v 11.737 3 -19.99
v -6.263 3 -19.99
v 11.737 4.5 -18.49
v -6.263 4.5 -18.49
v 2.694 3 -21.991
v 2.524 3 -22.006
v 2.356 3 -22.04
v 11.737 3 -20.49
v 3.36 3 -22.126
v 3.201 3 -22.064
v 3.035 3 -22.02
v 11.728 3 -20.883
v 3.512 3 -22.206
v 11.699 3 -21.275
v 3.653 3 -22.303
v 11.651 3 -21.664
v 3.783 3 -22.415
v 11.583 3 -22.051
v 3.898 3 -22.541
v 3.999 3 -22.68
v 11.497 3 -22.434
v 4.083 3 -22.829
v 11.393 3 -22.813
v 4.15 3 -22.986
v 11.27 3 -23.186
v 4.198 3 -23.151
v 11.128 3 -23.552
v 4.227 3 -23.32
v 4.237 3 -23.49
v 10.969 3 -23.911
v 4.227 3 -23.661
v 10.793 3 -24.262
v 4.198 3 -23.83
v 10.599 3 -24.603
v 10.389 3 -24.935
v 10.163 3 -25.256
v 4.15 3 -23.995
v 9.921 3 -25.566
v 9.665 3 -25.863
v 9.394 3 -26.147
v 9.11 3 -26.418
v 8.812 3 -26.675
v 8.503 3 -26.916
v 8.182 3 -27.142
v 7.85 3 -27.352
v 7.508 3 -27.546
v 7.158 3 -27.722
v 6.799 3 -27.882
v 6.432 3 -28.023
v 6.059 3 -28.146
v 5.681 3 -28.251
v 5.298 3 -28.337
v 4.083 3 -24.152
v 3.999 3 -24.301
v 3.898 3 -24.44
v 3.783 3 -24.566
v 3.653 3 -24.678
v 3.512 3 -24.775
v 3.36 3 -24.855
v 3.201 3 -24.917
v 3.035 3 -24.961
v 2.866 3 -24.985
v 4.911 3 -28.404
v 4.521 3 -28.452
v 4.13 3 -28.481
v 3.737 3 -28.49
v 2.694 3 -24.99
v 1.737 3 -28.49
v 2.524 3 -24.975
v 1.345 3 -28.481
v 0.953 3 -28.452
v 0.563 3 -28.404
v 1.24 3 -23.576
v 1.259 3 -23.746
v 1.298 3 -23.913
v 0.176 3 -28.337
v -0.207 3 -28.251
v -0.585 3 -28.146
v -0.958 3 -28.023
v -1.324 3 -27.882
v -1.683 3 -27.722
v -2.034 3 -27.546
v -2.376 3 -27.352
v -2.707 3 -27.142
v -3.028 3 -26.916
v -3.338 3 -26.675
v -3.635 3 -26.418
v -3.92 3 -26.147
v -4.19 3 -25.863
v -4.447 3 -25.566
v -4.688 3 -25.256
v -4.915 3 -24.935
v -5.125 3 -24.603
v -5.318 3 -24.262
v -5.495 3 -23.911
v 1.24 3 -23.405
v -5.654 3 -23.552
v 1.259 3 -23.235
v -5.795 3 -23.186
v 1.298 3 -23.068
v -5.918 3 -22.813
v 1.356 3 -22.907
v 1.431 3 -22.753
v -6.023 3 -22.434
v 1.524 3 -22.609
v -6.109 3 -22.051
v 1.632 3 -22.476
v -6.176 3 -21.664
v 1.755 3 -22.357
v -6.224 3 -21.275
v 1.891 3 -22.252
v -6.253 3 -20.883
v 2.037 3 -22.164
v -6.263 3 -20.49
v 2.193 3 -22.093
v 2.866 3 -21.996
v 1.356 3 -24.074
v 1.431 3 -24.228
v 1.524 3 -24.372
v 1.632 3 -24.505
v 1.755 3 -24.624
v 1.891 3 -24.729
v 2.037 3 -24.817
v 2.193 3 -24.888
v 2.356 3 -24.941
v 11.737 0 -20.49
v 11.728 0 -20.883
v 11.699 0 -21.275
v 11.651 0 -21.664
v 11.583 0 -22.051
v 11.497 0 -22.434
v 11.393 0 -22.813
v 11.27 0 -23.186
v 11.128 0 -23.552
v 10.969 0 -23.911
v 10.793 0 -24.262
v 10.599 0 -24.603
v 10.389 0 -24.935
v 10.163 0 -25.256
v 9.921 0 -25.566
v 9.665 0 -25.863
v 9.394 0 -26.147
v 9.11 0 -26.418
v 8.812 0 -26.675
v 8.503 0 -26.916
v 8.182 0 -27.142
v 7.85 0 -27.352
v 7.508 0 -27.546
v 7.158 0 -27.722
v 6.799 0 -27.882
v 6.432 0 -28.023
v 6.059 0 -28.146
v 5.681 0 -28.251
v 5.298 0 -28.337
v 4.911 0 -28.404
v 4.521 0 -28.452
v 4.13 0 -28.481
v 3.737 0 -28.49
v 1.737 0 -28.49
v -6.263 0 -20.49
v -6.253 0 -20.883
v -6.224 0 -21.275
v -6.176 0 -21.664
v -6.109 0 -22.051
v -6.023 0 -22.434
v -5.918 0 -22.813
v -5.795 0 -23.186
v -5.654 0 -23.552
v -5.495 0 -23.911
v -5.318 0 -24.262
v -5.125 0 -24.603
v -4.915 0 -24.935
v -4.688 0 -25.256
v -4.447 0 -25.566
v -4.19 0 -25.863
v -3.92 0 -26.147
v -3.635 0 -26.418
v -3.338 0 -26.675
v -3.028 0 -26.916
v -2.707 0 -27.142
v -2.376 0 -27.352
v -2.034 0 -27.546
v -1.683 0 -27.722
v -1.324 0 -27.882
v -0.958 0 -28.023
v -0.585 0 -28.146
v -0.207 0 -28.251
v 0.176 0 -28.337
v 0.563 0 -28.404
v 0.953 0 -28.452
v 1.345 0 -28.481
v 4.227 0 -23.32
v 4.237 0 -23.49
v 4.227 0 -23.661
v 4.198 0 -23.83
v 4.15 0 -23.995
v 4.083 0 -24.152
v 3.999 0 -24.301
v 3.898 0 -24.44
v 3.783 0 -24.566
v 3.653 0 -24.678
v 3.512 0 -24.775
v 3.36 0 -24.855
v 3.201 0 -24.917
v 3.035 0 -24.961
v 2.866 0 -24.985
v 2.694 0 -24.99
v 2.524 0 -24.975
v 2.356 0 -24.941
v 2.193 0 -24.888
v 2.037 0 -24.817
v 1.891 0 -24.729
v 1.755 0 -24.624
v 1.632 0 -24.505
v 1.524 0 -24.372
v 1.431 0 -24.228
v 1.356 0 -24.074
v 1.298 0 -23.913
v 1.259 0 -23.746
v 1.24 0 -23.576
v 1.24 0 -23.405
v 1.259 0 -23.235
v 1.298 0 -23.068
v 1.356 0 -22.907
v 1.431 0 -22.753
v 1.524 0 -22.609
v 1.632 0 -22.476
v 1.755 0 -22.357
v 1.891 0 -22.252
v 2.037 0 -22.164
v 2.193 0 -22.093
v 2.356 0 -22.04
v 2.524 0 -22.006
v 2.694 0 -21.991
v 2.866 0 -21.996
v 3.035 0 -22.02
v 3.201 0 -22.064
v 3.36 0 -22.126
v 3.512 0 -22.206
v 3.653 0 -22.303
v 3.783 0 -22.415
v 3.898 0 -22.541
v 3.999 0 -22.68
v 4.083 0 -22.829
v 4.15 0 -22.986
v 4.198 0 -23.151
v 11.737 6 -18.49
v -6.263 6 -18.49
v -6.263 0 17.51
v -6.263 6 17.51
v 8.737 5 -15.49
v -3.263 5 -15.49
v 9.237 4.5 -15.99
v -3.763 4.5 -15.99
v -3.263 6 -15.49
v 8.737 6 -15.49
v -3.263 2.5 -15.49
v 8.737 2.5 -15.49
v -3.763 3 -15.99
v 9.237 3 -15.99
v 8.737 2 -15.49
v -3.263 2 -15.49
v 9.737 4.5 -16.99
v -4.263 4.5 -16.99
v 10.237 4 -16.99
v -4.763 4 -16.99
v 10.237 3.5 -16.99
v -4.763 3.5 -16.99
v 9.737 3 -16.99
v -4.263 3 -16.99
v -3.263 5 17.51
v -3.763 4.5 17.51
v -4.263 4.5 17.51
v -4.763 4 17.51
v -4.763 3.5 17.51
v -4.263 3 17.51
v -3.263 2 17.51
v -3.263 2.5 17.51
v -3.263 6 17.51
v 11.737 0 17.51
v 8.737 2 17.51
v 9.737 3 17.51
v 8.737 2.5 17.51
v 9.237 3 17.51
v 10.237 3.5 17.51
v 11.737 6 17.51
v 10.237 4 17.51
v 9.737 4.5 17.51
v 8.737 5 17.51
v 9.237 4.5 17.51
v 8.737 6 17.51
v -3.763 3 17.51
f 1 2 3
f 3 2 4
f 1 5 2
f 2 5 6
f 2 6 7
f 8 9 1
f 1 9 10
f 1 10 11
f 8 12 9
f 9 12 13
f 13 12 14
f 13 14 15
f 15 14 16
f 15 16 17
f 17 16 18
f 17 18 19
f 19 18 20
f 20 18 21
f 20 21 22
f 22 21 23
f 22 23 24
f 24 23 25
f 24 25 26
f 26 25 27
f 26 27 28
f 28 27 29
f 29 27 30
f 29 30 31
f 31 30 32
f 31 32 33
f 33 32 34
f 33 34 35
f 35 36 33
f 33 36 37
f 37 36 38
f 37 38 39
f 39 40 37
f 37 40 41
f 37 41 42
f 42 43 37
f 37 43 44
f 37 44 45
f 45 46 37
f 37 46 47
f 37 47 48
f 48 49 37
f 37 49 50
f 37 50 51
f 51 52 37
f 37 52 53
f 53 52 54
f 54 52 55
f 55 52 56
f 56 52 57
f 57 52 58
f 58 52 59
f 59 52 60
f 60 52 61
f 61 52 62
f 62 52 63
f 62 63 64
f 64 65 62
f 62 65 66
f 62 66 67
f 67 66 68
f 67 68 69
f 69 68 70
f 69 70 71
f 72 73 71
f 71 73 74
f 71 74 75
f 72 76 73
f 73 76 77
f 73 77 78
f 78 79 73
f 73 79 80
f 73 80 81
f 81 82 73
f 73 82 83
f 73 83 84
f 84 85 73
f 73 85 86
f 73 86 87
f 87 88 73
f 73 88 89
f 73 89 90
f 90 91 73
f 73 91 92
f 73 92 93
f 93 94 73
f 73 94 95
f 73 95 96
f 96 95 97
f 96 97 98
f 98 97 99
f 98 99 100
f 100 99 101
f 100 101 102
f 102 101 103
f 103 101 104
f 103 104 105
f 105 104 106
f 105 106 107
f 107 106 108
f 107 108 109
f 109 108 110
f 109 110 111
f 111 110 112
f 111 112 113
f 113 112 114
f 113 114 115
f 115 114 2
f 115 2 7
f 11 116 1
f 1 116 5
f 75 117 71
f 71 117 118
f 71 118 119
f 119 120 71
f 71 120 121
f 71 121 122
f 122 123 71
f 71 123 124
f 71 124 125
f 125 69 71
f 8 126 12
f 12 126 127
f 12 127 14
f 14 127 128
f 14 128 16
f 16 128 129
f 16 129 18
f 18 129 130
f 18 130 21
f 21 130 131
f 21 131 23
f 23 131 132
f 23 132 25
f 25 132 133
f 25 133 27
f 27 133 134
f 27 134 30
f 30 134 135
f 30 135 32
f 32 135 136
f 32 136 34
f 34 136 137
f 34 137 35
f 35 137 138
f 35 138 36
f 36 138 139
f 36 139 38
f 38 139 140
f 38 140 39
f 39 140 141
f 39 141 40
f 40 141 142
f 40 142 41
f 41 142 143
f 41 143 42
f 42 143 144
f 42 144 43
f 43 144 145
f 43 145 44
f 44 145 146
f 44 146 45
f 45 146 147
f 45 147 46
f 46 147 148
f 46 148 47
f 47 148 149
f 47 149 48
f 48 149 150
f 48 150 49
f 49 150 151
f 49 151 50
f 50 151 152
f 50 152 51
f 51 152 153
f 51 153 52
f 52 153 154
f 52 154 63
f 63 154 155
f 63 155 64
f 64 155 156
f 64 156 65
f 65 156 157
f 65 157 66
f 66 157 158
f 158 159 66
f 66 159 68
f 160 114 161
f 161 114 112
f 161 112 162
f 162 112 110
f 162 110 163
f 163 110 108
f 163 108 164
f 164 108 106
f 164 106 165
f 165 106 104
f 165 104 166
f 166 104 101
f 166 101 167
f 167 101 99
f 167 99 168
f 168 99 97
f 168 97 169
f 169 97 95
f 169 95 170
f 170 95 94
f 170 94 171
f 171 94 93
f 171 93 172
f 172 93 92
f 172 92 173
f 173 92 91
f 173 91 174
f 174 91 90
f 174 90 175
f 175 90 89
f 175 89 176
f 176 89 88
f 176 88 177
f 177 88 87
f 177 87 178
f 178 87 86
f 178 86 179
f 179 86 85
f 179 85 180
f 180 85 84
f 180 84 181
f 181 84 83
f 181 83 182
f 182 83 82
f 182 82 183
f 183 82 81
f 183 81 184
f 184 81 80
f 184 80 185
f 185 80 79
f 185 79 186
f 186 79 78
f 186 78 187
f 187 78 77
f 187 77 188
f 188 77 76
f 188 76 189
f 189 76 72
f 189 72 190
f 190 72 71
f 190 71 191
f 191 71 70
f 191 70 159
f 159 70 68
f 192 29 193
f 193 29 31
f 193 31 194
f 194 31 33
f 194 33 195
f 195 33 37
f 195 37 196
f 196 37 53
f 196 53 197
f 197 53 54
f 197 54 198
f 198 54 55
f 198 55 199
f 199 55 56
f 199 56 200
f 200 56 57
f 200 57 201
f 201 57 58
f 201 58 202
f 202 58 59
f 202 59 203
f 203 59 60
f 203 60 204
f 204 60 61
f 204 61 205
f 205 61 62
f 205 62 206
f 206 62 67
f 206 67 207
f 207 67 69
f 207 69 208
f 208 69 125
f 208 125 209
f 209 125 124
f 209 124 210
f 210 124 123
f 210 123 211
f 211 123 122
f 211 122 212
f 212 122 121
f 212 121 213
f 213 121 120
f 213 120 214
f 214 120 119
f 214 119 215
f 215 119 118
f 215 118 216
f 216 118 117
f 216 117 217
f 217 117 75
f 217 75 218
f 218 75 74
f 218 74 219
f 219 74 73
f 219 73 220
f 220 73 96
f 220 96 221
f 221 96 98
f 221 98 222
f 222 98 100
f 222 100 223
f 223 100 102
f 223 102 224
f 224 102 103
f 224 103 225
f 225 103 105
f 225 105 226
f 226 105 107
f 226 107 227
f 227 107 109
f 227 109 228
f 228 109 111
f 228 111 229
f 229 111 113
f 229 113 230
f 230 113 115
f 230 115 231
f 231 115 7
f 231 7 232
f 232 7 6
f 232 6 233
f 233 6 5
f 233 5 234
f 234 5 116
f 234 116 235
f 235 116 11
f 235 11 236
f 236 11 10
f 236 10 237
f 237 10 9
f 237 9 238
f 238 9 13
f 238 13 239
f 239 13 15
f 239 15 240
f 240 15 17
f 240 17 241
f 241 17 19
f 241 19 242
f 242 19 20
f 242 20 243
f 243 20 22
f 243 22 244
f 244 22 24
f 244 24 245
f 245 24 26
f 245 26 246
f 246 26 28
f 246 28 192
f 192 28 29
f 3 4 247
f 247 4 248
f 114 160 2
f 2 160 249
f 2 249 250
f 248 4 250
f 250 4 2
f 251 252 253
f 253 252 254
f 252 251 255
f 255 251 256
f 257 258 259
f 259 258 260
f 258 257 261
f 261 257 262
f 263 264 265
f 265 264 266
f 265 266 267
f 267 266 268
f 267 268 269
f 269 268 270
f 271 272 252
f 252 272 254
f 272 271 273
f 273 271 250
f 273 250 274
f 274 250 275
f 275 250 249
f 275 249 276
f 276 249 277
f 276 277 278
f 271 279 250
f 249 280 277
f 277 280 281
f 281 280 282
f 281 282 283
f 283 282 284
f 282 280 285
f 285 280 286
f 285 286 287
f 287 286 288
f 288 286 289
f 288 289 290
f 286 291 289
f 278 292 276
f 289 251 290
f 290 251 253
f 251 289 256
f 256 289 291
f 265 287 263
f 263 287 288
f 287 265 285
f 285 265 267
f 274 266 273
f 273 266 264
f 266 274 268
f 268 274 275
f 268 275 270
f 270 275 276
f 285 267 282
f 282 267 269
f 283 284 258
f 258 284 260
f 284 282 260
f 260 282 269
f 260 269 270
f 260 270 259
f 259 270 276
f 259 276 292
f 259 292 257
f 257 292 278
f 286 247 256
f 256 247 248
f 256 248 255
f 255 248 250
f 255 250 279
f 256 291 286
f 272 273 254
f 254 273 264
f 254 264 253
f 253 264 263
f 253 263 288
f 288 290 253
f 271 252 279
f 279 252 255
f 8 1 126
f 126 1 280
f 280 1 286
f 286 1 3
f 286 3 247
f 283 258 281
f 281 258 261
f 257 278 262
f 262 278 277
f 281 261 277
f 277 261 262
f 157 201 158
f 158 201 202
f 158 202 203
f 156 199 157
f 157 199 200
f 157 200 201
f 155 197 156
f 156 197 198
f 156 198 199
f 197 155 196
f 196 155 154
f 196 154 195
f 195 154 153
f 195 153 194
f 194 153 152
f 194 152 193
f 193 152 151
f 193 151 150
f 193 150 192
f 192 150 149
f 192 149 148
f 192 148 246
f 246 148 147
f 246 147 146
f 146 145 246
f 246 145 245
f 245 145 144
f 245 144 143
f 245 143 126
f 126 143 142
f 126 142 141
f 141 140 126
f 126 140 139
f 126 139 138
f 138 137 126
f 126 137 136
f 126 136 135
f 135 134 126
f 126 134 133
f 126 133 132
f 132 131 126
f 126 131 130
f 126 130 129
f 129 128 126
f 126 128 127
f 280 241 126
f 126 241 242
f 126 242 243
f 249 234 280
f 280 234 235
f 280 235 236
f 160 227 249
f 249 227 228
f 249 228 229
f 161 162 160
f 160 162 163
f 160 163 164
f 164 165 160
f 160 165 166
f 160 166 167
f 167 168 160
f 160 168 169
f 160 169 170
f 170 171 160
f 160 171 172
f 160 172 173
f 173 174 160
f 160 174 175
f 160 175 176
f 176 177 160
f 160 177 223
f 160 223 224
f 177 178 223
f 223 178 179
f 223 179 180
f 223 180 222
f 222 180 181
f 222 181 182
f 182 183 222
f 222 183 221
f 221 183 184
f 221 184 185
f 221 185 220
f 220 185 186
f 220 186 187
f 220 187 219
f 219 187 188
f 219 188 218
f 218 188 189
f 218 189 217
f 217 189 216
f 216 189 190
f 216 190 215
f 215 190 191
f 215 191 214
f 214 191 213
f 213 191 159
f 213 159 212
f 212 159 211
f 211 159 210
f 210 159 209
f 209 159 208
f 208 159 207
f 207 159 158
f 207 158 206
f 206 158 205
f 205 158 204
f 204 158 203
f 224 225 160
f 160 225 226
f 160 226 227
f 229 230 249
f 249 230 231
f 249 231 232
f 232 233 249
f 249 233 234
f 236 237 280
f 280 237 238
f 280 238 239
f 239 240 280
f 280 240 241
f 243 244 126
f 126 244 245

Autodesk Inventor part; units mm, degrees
ref_plane "YZ Plane" through (0, 0, 0) normal (1, 0, 0) x (0, 1, 0)
ref_plane "XZ Plane" through (0, 0, 0) normal (0, 1, 0) x (-1, 0, 0)
ref_plane "XY Plane" through (0, 0, 0) normal (0, 0, 1) x (1, 0, 0)
sketch "Sketch1" plane through (0, 0, 0) normal (0, 1, 0) x (-1, 0, 0)
  line L0 (4.2628, 17.0095) -> (-9.7372, 17.0095)
  line L1 (-9.7372, 17.0095) -> (-9.7372, -14.9905)
  line L2 (-9.7372, -14.9905) -> (4.2628, -14.9905)
  line L3 (4.2628, -14.9905) -> (4.2628, 17.0095)
  line L4 (4.7628, 17.5095) -> (-10.2372, 17.5095)
  line L5 (-10.2372, 17.5095) -> (-10.2372, -15.4905)
  line L6 (-10.2372, -15.4905) -> (4.7628, -15.4905)
  line L7 (4.7628, -15.4905) -> (4.7628, 17.5095)
  point P0 (0, 0)
  dimension "d0" = 14
  dimension "d1" = 32
  dimension "d2" = 0.5
extrude "Extrusion1" add sketch "Sketch1" along normal blind 2 contours L3 L2 L1 L0 | L7 L6 L5 L4
sketch "Sketch2" plane through (0, 2, 0) normal (0, 1, 0) x (1, 0, 0)
  line L0 (-4.7628, 15.4905) -> (-4.7628, -17.5095) projected
  line L1 (10.2372, -17.5095) -> (10.2372, 15.4905) projected
  line L2 (-3.2628, 15.4905) -> (-3.2628, -17.5095)
  line L3 (8.7372, -17.5095) -> (8.7372, 15.4905)
  line L4 (-3.2628, -17.5095) -> (-6.2628, -17.5095)
  line L5 (-6.2628, -17.5095) -> (-6.2628, 15.4905)
  line L6 (-6.2628, 15.4905) -> (-3.2628, 15.4905)
  line L7 (-3.2628, 15.4905) -> (-3.2628, -17.5095)
  line L8 (8.7372, -17.5095) -> (11.7372, -17.5095)
  line L9 (11.7372, -17.5095) -> (11.7372, 15.4905)
  line L10 (11.7372, 15.4905) -> (8.7372, 15.4905)
  line L11 (8.7372, 15.4905) -> (8.7372, -17.5095)
  point P0 (0, 0)
  dimension "d5" = 1.5
  dimension "d6" = 1.5
  dimension "d7" = 3
  dimension "d8" = 3
extrude "Extrusion2" add sketch "Sketch2" along normal blind 1
sketch "Sketch3" plane through (0, 3, 0) normal (0, 1, 0) x (1, 0, 0)
  line L0 (-6.2628, 15.4905) -> (-6.2628, -17.5095) projected
  line L1 (11.7372, -17.5095) -> (11.7372, 15.4905) projected
  line L2 (-6.2628, -17.5095) -> (-4.7628, -17.5095) projected
  line L3 (-3.2628, 15.4905) -> (-6.2628, 15.4905) projected
  line L4 (-6.2628, -17.5095) -> (-4.7628, -17.5095)
  line L5 (-4.7628, -17.5095) -> (-4.7628, 15.4905)
  line L6 (-4.7628, 15.4905) -> (-6.2628, 15.4905)
  line L7 (-6.2628, 15.4905) -> (-6.2628, -17.5095)
  line L8 (10.2372, -17.5095) -> (10.2372, 15.4905) projected
  line L9 (11.7372, -17.5095) -> (10.2372, -17.5095)
  line L10 (10.2372, -17.5095) -> (10.2372, 15.4905)
  line L11 (10.2372, 15.4905) -> (11.7372, 15.4905)
  line L12 (11.7372, 15.4905) -> (11.7372, -17.5095)
  point P0 (0, 0)
extrude "Extrusion3" add sketch "Sketch3" along normal blind 1.5
sketch "Sketch4" plane through (0, 4.5, 0) normal (0, 1, 0) x (1, 0, 0)
  line L0 (-4.7628, 15.4905) -> (-6.2628, 15.4905) projected
  line L1 (-6.2628, 15.4905) -> (-6.2628, -17.5095) projected
  line L2 (-6.2628, -17.5095) -> (-4.7628, -17.5095) projected
  line L3 (-4.7628, -17.5095) -> (-4.7628, 15.4905) projected
  line L4 (11.7372, -17.5095) -> (11.7372, 15.4905) projected
  line L5 (11.7372, 15.4905) -> (10.2372, 15.4905) projected
  line L6 (10.2372, 15.4905) -> (10.2372, -17.5095) projected
  line L7 (10.2372, -17.5095) -> (11.7372, -17.5095) projected
  line L8 (8.7372, 15.4905) -> (8.7372, -17.5095) projected
  line L9 (-3.2628, -17.5095) -> (-3.2628, 15.4905) projected
  line L10 (8.7372, 15.4905) -> (-3.2628, 15.4905) projected
  line L11 (-6.2628, -17.5095) -> (-3.2628, -17.5095)
  line L12 (-3.2628, -17.5095) -> (-3.2628, 15.4905)
  line L13 (-3.2628, 15.4905) -> (-6.2628, 15.4905)
  line L14 (-6.2628, 15.4905) -> (-6.2628, -17.5095)
  line L15 (11.7372, -17.5095) -> (8.7372, -17.5095)
  line L16 (8.7372, -17.5095) -> (8.7372, 15.4905)
  line L17 (8.7372, 15.4905) -> (11.7372, 15.4905)
  line L18 (11.7372, 15.4905) -> (11.7372, -17.5095)
  point P0 (0, 0)
extrude "Extrusion4" add sketch "Sketch4" along normal blind 1.5
chamfer "Chamfer1" distance 0.5 angle 45 4 edges at (-3.2628, 3, 1.0095) (8.7372, 3, 1.0095) (10.2372, 3, 1.0095) (-4.7628, 3, 1.0095)
chamfer "Chamfer2" distance 0.5 angle 45 4 edges at (-4.7628, 4.5, 1.0095) (10.2372, 4.5, 1.0095) (8.7372, 4.5, 1.0095) (-3.2628, 4.5, 1.0095)
sketch "Sketch5" plane through (0, 2, 0) normal (0, -1, 0) x (1, 0, 0)
  line L0 (-4.7628, -15.4905) -> (-4.7628, 17.5095) projected
  line L1 (-6.2628, 17.5095) -> (-4.7628, 17.5095) projected
  line L2 (-6.2628, -15.4905) -> (-6.2628, 17.5095) projected
  line L3 (-4.7628, -15.4905) -> (-6.2628, -15.4905) projected
  line L4 (10.2372, 17.5095) -> (10.2372, -15.4905) projected
  line L5 (11.7372, -15.4905) -> (10.2372, -15.4905) projected
  line L6 (11.7372, 17.5095) -> (11.7372, -15.4905) projected
  line L7 (10.2372, 17.5095) -> (11.7372, 17.5095) projected
  point P0 (0, 0)
extrude "Extrusion5" add sketch "Sketch5" along normal up to surface (2 mm away)
sketch "Sketch6" plane through (11.7372, 0, -15.4905) normal (0, 0, -1) x (-1, 0, 0)
  line L0 (0, 0) -> (0, 6) projected
  line L1 (18, 0) -> (0, 0) projected
  line L2 (0, 6) -> (3, 6) projected
  line L3 (15, 6) -> (18, 6) projected
  line L4 (18, 0) -> (18, 6) projected
  line L5 (16.5, 4) -> (16, 4.5) projected
  line L6 (15.5, 4.5) -> (16, 4.5) projected
  line L7 (16.5, 3.5) -> (16.5, 4) projected
  line L8 (16, 3) -> (16.5, 3.5) projected
  line L9 (15.5, 3) -> (16, 3) projected
  line L10 (2, 3) -> (2.5, 3) projected
  line L11 (1.5, 3.5) -> (2, 3) projected
  line L12 (1.5, 3.5) -> (1.5, 4) projected
  line L13 (2, 4.5) -> (1.5, 4) projected
  line L14 (2, 4.5) -> (2.5, 4.5) projected
  line L15 (2.5, 4.5) -> (15.5, 4.5)
  line L16 (3, 2.5) -> (2.5, 3) projected
  line L17 (15, 2.5) -> (15.5, 3) projected
  line L18 (2.5, 3) -> (15.5, 3)
  line L19 (3, 5) -> (3, 6) projected
  line L20 (15, 5) -> (15, 6) projected
  line L21 (3, 6) -> (15, 6)
  point P0 (11.7372, 0)
extrude "Extrusion6" add sketch "Sketch6" along normal blind 1.5
sketch "Sketch7" plane through (11.7372, 0, -16.9905) normal (0, 0, -1) x (-1, 0, 0)
  line L0 (0, 6) -> (0, 0) projected
  line L1 (0, 0) -> (18, 0) projected
  line L2 (18, 6) -> (18, 0) projected
  line L3 (0, 6) -> (18, 6)
  line L4 (18, 6) -> (18, 0)
  line L5 (18, 0) -> (0, 0)
  line L6 (0, 0) -> (0, 6)
  point P0 (11.7372, 0)
extrude "Extrusion7" add sketch "Sketch7" along normal blind 1.5
chamfer "Chamfer3" distance 0.5 angle 45 2 edges at (2.7372, 3, -15.4905) (2.7372, 4.5, -15.4905)
sketch "Sketch8" plane through (11.7372, 0, -18.4905) normal (0, 0, -1) x (-1, 0, 0)
  line L0 (0, 6) -> (0, 0) projected
  line L1 (0, 0) -> (18, 0) projected
  line L2 (18, 0) -> (18, 6) projected
  line L3 (18, 6) -> (0, 6) projected
  point P0 (11.7372, 0)
extrude "Extrusion8" add sketch "Sketch8" along normal blind 10
sketch "Sketch9" plane through (0, 6, 0) normal (0, 1, 0) x (1, 0, 0)
  line L0 (-6.2628, 28.4905) -> (11.7372, 28.4905) projected
  line L1 (-6.2628, -17.5095) -> (-6.2628, 28.4905) projected
  line L2 (11.7372, 28.4905) -> (-6.2628, 28.4905)
  line L3 (-6.2628, 28.4905) -> (-6.2628, 18.4905)
  line L4 (-6.2628, 18.4905) -> (11.7372, 18.4905)
  line L5 (11.7372, 18.4905) -> (11.7372, 28.4905)
  point P0 (0, 0)
  dimension "d32" = 10
extrude "Extrusion9" cut sketch "Sketch9" against normal blind 3
sketch "Sketch10" plane through (0, 3, 0) normal (0, 1, 0) x (1, 0, 0)
  line L0 (11.7372, 28.4905) -> (11.7372, 18.4905) projected
  line L1 (-6.2628, 18.4905) -> (-6.2628, 28.4905) projected
  line L2 (11.7372, 18.4905) -> (-6.2628, 18.4905) projected
  line L3 (11.7372, 28.4905) -> (-6.2628, 18.4905)
  circle A0 centre (2.7372, 23.4905) radius 1.5
  point P0 (0, 0)
  dimension "d35" = 3
extrude "Extrusion10" cut sketch "Sketch10" against normal blind 3 contours A0 L3 | L3 A0
fillet "Fillet1" radius 8 2 edges at (-6.2628, 1.5, -28.4905) (11.7372, 1.5, -28.4905)
chamfer "Chamfer4" distance 1.5 angle 45 1 edges at (2.7372, 3, -18.4905)
properties part number "RC_Snubber_3DPrint"
